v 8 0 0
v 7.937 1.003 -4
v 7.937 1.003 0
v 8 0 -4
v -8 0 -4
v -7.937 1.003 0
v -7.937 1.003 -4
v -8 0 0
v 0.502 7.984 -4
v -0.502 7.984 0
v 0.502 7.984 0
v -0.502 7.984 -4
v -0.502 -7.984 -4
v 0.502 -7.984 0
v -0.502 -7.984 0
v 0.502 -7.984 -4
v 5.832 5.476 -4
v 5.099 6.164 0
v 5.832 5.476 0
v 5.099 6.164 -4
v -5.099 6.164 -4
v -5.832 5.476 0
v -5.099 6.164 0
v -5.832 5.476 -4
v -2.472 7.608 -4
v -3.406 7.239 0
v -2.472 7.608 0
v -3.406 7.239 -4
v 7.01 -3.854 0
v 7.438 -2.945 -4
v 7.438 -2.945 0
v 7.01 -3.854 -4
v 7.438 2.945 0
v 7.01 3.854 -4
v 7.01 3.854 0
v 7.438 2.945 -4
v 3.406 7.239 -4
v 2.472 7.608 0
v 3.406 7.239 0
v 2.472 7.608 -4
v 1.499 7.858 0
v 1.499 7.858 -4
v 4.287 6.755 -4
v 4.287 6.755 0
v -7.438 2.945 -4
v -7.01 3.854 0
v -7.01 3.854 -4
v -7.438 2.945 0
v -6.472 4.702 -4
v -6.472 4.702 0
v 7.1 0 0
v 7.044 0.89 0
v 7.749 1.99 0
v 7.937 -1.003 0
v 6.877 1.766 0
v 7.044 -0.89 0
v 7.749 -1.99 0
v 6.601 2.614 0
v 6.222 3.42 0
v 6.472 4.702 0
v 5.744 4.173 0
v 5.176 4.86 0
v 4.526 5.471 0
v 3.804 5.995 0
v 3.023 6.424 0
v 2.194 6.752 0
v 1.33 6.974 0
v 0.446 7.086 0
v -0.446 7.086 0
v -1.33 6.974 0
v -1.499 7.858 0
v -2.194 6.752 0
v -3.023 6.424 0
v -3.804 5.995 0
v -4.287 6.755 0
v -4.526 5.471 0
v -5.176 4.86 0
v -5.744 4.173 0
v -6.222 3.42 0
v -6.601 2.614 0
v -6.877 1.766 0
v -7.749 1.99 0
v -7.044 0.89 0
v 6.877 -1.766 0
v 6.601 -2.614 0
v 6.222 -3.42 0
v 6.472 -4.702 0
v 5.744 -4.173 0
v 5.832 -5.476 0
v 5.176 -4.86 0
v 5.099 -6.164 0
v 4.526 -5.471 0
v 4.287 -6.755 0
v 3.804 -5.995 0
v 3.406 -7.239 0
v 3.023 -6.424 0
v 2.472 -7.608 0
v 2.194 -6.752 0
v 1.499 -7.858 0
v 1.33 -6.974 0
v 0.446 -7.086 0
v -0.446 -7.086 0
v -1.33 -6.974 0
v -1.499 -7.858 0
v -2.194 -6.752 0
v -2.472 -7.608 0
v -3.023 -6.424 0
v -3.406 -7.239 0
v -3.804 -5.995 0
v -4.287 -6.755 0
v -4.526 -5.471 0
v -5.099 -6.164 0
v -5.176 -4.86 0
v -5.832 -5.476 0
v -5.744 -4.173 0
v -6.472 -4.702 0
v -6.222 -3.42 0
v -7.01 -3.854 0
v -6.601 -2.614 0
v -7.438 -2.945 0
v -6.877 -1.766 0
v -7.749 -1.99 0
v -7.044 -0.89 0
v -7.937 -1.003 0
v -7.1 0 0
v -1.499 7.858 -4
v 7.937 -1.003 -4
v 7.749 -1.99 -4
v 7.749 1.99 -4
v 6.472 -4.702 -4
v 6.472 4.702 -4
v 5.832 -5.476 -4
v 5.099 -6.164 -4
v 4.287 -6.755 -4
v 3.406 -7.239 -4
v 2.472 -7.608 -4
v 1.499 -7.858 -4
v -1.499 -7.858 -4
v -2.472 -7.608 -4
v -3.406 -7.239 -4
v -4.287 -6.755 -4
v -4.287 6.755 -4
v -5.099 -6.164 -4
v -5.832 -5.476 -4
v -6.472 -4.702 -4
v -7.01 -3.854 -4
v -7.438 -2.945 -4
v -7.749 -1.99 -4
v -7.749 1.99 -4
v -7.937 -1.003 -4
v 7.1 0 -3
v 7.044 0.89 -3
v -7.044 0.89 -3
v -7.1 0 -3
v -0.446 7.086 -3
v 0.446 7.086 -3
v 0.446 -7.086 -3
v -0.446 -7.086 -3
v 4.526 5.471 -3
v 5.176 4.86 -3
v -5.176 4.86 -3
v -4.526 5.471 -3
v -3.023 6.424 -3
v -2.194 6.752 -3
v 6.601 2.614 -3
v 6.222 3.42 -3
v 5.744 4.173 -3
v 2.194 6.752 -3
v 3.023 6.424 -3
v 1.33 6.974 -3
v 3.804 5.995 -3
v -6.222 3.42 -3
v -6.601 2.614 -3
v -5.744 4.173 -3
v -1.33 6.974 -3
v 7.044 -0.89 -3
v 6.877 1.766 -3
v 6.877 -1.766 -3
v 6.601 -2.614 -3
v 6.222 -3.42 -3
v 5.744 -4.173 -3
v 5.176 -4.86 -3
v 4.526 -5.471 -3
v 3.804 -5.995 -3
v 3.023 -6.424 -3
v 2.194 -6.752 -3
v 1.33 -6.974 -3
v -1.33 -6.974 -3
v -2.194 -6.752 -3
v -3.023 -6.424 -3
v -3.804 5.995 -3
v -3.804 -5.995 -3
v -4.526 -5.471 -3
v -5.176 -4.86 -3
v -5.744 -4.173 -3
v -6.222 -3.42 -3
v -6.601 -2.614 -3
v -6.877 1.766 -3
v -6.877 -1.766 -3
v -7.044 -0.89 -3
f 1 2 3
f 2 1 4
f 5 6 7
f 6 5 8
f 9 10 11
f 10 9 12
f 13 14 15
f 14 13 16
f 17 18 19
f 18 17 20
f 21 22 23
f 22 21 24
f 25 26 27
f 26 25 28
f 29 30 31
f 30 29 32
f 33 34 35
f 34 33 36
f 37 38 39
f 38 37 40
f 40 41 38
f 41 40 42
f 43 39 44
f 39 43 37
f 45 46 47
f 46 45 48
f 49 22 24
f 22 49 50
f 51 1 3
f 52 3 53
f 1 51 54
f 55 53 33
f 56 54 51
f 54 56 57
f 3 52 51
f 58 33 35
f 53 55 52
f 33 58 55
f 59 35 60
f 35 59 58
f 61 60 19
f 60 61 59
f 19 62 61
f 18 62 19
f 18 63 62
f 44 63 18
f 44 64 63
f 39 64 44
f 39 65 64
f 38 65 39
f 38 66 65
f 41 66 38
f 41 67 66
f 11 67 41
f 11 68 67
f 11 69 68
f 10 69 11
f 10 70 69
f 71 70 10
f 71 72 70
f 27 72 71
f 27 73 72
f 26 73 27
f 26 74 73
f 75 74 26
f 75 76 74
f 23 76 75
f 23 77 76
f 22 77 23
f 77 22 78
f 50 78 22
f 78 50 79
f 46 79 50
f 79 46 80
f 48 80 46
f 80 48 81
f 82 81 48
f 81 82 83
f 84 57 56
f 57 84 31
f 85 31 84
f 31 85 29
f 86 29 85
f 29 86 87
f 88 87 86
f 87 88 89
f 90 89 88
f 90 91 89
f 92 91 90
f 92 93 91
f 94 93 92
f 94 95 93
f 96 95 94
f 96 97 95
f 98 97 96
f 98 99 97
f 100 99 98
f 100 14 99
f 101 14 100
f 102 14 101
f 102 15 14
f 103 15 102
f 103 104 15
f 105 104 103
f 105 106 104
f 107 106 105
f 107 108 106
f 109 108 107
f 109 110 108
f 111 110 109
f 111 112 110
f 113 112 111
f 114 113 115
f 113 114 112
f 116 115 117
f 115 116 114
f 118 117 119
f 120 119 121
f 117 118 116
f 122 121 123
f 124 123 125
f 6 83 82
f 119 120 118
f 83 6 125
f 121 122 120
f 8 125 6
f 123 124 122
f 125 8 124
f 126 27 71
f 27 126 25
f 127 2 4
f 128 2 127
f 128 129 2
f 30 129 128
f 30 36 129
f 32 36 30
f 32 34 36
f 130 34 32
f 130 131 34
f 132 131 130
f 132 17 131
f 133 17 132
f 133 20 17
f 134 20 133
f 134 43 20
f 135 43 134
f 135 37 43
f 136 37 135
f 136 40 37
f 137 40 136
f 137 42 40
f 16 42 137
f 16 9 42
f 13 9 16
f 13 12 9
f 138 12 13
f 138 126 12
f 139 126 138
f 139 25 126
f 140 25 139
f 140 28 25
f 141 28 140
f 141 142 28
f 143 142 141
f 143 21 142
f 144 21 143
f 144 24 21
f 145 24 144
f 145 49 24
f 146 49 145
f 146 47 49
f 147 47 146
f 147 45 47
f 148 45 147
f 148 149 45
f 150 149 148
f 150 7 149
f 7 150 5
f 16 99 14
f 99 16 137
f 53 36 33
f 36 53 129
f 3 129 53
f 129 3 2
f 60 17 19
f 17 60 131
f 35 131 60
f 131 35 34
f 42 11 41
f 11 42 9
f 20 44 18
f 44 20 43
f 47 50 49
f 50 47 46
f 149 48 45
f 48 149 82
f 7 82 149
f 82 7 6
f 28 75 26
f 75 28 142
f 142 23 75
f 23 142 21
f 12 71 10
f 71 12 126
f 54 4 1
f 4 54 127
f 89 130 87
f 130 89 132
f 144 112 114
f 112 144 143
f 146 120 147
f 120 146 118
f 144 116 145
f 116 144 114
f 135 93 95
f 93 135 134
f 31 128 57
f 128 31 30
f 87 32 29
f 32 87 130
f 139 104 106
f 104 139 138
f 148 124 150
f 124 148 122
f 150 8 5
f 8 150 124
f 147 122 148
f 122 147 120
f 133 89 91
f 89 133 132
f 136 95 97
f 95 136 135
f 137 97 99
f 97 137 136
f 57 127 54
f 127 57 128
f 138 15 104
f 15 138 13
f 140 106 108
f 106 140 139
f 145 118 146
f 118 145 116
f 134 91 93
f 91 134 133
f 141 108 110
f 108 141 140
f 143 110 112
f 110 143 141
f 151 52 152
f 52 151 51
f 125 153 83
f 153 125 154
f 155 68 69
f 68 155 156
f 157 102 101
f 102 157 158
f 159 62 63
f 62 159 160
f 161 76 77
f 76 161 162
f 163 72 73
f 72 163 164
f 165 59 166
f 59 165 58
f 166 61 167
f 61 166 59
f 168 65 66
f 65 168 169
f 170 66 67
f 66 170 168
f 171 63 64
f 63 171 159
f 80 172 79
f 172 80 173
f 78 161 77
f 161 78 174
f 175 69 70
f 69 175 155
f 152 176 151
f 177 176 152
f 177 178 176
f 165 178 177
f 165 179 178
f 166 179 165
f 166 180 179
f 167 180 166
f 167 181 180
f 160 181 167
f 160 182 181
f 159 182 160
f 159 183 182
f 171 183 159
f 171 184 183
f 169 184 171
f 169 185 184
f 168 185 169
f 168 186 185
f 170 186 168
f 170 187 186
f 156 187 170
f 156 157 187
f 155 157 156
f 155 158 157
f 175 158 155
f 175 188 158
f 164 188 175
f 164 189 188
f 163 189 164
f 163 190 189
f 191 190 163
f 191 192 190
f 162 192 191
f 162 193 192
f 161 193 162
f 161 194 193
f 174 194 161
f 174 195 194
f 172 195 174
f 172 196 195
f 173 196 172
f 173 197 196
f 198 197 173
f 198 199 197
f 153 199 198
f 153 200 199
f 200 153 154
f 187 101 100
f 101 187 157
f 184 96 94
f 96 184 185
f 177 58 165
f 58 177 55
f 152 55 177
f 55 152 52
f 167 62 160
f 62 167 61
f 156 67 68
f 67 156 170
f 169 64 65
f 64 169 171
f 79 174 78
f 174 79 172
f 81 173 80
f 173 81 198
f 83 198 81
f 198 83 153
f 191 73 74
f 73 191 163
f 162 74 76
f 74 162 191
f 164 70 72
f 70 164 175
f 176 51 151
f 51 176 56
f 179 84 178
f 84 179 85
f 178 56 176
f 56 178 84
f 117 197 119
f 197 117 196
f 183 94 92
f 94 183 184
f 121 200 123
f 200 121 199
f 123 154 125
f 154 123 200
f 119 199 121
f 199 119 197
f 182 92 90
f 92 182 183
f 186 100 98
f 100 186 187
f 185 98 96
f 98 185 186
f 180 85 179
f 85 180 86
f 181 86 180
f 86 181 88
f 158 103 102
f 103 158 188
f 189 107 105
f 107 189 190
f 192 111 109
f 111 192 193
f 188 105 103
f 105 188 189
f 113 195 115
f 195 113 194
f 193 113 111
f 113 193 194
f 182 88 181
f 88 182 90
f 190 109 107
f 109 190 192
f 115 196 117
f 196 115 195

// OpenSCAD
$fn = 50;


difference() {
	union() {
		translate(v = [0, 0, -4.0000000000]) {
			cylinder(h = 4, r = 8.0000000000);
		}
	}
	union() {
		#translate(v = [0, 0, -3.0000000000]) {
			cylinder(h = 3, r = 7.1000000000);
		}
	}
}
